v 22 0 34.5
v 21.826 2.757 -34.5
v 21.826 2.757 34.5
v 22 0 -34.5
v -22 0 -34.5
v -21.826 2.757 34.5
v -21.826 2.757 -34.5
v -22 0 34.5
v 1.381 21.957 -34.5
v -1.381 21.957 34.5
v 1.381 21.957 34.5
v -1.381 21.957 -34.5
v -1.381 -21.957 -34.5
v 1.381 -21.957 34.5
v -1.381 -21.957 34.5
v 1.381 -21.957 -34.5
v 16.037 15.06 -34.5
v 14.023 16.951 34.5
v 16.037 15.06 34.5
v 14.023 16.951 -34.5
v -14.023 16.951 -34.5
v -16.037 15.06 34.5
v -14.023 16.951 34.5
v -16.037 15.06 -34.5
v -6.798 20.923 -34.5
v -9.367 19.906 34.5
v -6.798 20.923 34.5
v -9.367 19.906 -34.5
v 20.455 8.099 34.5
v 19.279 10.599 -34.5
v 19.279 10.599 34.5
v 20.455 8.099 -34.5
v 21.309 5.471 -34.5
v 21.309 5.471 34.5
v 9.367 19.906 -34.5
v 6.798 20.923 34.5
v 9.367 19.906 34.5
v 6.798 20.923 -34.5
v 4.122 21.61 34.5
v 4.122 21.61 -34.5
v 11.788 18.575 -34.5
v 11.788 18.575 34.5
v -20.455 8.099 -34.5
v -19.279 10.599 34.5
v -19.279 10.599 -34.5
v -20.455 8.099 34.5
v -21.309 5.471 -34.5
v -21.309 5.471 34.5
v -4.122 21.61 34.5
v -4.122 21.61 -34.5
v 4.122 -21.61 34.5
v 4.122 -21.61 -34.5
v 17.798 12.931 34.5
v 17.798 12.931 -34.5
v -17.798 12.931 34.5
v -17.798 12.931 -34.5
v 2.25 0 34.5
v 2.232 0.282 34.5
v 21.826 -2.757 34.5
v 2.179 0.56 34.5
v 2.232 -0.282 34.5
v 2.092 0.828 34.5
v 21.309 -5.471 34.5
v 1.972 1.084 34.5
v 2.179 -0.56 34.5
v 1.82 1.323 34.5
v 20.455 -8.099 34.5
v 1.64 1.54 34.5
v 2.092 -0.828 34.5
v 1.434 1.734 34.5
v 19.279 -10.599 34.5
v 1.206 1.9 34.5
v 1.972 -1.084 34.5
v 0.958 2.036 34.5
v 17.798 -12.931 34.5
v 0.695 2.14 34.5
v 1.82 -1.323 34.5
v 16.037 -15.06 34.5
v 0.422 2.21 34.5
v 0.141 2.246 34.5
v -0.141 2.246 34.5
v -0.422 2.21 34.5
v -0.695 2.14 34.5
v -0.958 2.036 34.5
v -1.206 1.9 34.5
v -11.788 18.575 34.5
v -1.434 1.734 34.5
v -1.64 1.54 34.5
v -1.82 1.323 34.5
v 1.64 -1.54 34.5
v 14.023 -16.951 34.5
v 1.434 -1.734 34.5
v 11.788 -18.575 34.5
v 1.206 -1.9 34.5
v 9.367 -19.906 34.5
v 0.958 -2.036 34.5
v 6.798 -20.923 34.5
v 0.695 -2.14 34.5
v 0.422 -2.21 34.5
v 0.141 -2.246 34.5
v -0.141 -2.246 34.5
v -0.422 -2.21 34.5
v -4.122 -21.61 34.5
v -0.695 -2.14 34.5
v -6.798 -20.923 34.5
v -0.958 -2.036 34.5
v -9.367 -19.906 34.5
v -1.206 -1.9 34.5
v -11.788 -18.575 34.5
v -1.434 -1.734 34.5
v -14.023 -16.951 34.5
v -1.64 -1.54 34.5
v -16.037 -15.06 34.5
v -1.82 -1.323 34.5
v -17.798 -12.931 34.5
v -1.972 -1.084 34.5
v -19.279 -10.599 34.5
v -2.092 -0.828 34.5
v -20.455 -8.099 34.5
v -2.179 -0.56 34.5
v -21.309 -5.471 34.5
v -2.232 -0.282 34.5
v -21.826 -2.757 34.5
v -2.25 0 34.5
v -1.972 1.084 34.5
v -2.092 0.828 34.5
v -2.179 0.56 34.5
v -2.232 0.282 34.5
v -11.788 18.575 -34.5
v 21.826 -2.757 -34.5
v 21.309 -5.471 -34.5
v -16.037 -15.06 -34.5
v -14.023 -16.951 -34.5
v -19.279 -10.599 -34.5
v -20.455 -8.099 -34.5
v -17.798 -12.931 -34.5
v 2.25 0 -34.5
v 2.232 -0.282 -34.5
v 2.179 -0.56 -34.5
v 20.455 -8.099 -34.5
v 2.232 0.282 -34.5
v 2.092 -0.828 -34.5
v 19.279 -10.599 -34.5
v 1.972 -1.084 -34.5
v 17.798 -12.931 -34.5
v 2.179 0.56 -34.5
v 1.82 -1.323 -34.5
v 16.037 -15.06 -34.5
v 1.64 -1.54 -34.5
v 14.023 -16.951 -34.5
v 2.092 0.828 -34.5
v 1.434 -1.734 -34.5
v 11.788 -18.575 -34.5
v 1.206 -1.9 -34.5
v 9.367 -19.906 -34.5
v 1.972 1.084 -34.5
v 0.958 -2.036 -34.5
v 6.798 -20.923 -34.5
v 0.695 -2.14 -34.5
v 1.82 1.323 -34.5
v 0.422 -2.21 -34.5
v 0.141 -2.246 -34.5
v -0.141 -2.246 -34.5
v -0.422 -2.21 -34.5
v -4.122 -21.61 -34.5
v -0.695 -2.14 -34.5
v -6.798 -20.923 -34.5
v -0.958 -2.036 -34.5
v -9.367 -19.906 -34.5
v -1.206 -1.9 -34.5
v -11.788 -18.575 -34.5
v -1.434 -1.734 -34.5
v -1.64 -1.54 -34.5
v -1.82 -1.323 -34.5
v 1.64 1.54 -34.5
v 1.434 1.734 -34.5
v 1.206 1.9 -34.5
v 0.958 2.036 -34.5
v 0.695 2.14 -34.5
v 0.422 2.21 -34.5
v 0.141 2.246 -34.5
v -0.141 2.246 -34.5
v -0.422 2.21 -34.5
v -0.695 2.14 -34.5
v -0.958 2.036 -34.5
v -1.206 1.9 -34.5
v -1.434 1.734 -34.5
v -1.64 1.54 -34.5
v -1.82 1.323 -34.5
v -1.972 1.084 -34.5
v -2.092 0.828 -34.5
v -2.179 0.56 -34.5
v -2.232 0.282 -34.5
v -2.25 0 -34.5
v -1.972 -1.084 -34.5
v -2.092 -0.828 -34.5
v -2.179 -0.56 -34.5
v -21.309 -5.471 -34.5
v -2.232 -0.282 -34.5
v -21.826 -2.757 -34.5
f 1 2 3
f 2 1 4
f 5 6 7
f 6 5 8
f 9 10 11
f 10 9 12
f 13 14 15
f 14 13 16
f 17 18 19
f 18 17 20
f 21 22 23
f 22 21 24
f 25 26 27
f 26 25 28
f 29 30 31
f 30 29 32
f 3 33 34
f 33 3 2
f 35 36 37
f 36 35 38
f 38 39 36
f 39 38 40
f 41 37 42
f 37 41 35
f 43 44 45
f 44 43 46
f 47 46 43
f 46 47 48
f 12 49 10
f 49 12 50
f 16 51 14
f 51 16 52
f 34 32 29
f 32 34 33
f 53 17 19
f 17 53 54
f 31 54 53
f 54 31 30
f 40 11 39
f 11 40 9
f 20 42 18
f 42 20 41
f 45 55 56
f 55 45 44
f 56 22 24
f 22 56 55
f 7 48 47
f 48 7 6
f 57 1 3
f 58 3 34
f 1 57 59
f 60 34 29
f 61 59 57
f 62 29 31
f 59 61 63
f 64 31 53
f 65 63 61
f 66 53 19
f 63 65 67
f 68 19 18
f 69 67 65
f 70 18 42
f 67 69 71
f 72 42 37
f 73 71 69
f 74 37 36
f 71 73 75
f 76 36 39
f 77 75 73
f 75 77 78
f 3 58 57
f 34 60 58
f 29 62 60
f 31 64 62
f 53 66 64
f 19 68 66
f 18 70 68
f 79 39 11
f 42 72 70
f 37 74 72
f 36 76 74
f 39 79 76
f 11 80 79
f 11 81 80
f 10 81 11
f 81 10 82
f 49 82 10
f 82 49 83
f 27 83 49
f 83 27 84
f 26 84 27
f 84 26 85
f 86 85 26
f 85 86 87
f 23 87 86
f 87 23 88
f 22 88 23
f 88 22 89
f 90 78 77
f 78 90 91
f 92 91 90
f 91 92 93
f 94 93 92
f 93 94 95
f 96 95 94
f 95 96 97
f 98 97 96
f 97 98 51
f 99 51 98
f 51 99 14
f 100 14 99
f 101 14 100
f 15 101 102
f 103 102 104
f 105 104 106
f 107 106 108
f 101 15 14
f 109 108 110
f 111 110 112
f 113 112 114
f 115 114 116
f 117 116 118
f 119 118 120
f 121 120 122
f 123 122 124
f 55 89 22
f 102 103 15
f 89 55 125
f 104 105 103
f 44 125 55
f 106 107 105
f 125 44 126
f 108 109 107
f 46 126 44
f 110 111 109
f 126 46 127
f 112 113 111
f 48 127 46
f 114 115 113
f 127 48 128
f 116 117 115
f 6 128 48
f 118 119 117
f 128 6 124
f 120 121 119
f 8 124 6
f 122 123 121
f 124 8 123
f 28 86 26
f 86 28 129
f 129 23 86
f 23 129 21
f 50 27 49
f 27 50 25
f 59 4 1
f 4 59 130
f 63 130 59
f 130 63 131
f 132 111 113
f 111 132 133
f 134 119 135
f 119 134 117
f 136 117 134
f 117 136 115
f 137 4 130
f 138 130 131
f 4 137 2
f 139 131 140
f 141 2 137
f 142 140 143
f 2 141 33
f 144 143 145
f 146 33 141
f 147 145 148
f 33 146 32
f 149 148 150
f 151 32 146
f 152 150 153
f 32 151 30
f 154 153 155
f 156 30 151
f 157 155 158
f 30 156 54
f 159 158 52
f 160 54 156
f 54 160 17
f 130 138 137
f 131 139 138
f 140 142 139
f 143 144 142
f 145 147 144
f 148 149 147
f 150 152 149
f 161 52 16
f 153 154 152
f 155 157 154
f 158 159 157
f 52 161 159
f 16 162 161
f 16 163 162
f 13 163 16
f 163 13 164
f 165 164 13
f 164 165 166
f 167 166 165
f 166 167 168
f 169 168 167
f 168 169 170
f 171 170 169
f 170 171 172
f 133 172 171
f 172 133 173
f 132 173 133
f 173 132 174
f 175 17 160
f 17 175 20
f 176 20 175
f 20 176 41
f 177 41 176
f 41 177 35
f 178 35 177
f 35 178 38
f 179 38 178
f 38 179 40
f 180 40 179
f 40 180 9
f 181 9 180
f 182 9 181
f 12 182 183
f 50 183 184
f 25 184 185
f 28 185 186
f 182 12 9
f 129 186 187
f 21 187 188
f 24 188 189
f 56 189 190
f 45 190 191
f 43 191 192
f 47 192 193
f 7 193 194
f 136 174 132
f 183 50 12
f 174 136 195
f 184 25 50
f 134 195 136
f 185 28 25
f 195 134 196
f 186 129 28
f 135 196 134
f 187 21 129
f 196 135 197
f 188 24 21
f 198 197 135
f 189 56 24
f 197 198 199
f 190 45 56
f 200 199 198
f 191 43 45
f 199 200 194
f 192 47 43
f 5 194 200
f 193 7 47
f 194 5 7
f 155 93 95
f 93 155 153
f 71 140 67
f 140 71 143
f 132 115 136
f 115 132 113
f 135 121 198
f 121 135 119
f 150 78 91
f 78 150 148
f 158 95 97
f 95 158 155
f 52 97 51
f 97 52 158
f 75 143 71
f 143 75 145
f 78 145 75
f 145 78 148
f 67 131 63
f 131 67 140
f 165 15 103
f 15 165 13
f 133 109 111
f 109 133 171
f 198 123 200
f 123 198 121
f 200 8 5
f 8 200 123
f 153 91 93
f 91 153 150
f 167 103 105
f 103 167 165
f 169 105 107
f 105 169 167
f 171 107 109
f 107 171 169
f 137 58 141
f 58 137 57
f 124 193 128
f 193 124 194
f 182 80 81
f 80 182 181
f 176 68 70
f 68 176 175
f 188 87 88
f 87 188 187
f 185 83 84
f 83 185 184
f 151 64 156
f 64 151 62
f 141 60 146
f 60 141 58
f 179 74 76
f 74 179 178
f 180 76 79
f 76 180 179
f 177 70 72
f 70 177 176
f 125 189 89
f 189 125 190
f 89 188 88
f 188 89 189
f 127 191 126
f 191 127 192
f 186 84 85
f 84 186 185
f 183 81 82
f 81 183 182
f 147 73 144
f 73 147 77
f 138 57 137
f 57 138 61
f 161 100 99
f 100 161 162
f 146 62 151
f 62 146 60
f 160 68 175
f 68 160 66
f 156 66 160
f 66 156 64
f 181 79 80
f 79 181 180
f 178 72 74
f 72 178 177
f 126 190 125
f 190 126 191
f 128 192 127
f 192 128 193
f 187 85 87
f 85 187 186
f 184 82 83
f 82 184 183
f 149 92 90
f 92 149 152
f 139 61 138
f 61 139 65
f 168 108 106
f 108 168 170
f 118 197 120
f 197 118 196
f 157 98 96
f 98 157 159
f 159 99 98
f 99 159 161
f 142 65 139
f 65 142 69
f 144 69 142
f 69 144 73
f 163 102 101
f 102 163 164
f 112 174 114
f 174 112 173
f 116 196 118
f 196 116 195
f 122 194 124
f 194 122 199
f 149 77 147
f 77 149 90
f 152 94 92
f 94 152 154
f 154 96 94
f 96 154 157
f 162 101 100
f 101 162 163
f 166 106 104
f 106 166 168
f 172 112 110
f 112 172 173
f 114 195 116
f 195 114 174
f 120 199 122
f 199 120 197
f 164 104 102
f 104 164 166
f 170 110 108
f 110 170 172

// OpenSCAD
$fn = 50;


difference() {
	union() {
		translate(v = [0, 0, -34.5000000000]) {
			cylinder(h = 69, r = 22.0000000000);
		}
	}
	union() {
		translate(v = [0, 0, -100.0000000000]) {
			cylinder(h = 200, r = 2.2500000000);
		}
	}
}
